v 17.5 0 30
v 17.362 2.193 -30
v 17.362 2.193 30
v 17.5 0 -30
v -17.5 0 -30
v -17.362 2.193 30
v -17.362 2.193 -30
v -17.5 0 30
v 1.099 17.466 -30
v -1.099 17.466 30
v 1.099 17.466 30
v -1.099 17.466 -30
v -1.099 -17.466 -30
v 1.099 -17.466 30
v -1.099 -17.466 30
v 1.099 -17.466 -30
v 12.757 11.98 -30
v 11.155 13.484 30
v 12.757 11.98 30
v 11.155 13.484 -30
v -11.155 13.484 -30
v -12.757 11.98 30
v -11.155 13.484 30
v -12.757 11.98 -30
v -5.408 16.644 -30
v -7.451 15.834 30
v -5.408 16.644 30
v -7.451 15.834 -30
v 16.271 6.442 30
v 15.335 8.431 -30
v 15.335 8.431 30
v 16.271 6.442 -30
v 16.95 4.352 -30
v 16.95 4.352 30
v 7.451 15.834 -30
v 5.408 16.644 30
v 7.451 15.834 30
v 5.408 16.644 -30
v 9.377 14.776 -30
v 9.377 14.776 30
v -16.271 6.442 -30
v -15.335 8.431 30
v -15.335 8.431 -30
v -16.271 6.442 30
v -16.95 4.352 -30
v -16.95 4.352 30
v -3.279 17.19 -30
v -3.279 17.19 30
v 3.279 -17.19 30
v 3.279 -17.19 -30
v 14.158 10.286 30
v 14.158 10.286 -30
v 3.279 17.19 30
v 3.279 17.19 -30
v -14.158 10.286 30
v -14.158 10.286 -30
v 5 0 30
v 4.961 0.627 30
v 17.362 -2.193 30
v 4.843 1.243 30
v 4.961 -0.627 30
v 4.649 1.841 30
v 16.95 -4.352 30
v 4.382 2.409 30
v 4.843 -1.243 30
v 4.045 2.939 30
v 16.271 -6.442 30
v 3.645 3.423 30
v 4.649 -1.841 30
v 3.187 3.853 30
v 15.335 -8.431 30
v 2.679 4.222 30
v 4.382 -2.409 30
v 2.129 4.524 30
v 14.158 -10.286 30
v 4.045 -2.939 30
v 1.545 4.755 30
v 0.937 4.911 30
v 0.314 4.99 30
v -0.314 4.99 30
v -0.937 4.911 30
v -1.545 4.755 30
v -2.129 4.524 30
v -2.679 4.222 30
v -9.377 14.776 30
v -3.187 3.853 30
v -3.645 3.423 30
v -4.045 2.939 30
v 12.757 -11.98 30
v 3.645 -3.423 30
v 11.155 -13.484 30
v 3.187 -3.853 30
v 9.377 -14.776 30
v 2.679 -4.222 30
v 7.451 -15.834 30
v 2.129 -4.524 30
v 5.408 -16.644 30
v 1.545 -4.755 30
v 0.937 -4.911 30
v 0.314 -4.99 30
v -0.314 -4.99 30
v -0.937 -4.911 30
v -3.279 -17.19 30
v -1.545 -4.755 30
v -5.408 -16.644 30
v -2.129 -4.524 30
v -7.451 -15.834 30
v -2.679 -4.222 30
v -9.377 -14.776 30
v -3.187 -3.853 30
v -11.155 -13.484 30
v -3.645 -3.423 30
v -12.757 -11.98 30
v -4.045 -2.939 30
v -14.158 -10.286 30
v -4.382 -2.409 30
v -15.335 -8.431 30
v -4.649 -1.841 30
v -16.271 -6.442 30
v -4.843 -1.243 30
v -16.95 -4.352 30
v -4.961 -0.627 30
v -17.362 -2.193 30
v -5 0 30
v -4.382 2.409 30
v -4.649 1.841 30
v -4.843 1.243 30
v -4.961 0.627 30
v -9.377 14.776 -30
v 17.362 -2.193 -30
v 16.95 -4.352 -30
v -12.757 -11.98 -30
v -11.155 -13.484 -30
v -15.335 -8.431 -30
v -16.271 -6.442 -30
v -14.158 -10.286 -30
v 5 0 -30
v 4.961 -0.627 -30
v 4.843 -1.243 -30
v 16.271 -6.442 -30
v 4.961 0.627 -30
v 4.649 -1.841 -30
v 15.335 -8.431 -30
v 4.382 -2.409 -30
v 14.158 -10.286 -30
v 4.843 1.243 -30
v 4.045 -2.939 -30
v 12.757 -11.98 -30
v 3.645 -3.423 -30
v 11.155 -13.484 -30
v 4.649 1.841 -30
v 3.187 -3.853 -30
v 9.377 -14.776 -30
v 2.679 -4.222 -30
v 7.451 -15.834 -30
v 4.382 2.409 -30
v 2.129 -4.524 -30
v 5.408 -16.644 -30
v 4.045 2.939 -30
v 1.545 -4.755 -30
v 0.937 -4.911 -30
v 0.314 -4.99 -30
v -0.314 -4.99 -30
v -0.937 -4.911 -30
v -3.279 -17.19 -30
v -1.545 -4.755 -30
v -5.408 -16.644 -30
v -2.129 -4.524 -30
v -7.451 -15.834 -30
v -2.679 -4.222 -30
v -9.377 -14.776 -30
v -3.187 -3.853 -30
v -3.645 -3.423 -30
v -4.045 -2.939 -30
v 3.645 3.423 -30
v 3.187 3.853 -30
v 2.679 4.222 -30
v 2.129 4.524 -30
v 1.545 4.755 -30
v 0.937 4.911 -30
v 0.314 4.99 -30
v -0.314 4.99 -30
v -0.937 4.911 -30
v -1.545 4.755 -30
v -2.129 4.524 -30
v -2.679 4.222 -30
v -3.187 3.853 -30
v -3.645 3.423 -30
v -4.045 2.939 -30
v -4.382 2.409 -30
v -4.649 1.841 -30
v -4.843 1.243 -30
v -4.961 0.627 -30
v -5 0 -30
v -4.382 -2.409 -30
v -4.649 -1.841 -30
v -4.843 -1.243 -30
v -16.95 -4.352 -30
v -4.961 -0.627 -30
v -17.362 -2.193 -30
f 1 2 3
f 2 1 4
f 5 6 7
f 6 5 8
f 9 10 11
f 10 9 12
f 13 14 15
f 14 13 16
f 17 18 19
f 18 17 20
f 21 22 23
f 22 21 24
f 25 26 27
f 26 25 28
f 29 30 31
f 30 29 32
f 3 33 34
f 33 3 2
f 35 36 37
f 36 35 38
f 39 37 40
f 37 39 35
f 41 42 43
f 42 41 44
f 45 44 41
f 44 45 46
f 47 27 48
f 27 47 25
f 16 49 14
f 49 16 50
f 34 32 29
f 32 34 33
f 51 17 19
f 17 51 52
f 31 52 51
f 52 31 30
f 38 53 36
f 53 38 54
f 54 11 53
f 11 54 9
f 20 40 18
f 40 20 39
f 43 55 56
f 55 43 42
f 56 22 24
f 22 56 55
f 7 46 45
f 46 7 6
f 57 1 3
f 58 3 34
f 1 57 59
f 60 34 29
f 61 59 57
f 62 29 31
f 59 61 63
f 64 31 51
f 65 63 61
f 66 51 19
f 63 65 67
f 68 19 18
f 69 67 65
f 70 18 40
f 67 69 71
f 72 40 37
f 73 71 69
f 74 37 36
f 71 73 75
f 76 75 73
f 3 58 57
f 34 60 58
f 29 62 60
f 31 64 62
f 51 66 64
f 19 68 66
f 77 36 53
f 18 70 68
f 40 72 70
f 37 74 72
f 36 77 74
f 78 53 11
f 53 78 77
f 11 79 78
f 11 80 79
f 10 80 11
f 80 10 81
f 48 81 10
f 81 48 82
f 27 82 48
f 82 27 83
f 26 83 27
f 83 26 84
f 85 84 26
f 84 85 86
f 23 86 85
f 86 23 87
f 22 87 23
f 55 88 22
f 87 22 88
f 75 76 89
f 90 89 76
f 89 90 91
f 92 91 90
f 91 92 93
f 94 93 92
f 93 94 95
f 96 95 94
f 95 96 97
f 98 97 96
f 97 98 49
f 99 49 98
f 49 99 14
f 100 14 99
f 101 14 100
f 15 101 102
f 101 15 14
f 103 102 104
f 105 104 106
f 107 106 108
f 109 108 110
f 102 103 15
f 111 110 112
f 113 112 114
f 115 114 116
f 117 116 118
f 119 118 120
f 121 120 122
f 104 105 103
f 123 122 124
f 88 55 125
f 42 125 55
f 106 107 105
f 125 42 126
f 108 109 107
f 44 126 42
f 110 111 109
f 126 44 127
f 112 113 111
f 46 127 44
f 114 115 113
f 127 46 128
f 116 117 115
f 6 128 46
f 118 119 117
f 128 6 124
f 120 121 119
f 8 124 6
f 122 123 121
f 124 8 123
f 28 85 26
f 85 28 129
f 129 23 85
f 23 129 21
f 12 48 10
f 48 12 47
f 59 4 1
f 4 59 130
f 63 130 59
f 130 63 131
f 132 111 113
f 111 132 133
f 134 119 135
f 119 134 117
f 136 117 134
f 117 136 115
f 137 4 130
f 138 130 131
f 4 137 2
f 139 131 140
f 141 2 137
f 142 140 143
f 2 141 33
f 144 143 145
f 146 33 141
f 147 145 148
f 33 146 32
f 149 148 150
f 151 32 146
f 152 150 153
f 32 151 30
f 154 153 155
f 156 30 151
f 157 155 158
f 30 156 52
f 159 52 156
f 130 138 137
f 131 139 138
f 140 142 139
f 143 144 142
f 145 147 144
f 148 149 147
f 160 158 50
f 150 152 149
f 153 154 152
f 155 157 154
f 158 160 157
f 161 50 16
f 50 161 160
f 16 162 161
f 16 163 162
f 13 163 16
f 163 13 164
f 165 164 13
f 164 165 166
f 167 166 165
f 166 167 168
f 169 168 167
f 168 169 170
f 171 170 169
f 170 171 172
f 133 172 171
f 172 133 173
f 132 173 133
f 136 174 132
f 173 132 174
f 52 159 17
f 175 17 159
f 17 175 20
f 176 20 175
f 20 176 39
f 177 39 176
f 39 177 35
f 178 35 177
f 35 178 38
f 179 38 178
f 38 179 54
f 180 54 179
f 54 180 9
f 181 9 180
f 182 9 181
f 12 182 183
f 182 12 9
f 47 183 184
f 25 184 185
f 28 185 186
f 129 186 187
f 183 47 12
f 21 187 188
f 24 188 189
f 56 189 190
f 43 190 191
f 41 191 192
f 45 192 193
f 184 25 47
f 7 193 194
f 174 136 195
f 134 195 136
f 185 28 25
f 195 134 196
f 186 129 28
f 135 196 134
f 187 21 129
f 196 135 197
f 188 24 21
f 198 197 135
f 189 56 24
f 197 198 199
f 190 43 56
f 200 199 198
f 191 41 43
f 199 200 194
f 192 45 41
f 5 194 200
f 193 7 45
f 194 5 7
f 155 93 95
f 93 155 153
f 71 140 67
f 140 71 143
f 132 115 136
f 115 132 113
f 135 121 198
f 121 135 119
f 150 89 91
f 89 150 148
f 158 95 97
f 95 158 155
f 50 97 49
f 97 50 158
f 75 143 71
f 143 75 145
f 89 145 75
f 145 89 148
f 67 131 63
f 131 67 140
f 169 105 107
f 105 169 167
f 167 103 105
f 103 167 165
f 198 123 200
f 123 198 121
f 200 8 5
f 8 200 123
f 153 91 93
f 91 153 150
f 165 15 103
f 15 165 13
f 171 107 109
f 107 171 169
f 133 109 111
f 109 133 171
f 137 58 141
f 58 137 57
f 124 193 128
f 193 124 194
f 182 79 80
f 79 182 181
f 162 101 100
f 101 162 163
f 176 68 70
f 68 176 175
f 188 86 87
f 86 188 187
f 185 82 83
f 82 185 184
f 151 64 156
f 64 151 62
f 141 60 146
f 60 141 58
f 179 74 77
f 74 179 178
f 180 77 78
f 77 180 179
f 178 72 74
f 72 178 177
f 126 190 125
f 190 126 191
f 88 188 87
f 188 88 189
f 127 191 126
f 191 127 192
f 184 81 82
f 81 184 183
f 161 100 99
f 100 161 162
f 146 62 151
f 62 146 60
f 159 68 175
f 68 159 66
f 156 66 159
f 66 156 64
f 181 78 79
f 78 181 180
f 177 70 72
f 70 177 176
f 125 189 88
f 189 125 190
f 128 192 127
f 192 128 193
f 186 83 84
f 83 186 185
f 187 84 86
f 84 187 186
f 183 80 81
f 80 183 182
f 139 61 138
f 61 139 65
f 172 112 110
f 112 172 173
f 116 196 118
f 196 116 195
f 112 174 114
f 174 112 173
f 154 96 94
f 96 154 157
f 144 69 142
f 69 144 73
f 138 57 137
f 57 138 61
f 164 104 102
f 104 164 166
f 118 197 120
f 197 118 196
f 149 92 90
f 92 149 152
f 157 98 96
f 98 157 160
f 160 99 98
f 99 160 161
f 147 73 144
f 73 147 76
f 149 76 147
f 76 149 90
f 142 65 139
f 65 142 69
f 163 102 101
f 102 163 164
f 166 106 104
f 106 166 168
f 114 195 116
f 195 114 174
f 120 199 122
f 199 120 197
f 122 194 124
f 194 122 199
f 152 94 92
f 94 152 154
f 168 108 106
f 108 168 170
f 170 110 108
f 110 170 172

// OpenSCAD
$fn = 50;


difference() {
	union() {
		translate(v = [0, 0, -30.0000000000]) {
			cylinder(h = 60, r = 17.5000000000);
		}
	}
	union() {
		translate(v = [0, 0, -100.0000000000]) {
			cylinder(h = 200, r = 5);
		}
	}
}
